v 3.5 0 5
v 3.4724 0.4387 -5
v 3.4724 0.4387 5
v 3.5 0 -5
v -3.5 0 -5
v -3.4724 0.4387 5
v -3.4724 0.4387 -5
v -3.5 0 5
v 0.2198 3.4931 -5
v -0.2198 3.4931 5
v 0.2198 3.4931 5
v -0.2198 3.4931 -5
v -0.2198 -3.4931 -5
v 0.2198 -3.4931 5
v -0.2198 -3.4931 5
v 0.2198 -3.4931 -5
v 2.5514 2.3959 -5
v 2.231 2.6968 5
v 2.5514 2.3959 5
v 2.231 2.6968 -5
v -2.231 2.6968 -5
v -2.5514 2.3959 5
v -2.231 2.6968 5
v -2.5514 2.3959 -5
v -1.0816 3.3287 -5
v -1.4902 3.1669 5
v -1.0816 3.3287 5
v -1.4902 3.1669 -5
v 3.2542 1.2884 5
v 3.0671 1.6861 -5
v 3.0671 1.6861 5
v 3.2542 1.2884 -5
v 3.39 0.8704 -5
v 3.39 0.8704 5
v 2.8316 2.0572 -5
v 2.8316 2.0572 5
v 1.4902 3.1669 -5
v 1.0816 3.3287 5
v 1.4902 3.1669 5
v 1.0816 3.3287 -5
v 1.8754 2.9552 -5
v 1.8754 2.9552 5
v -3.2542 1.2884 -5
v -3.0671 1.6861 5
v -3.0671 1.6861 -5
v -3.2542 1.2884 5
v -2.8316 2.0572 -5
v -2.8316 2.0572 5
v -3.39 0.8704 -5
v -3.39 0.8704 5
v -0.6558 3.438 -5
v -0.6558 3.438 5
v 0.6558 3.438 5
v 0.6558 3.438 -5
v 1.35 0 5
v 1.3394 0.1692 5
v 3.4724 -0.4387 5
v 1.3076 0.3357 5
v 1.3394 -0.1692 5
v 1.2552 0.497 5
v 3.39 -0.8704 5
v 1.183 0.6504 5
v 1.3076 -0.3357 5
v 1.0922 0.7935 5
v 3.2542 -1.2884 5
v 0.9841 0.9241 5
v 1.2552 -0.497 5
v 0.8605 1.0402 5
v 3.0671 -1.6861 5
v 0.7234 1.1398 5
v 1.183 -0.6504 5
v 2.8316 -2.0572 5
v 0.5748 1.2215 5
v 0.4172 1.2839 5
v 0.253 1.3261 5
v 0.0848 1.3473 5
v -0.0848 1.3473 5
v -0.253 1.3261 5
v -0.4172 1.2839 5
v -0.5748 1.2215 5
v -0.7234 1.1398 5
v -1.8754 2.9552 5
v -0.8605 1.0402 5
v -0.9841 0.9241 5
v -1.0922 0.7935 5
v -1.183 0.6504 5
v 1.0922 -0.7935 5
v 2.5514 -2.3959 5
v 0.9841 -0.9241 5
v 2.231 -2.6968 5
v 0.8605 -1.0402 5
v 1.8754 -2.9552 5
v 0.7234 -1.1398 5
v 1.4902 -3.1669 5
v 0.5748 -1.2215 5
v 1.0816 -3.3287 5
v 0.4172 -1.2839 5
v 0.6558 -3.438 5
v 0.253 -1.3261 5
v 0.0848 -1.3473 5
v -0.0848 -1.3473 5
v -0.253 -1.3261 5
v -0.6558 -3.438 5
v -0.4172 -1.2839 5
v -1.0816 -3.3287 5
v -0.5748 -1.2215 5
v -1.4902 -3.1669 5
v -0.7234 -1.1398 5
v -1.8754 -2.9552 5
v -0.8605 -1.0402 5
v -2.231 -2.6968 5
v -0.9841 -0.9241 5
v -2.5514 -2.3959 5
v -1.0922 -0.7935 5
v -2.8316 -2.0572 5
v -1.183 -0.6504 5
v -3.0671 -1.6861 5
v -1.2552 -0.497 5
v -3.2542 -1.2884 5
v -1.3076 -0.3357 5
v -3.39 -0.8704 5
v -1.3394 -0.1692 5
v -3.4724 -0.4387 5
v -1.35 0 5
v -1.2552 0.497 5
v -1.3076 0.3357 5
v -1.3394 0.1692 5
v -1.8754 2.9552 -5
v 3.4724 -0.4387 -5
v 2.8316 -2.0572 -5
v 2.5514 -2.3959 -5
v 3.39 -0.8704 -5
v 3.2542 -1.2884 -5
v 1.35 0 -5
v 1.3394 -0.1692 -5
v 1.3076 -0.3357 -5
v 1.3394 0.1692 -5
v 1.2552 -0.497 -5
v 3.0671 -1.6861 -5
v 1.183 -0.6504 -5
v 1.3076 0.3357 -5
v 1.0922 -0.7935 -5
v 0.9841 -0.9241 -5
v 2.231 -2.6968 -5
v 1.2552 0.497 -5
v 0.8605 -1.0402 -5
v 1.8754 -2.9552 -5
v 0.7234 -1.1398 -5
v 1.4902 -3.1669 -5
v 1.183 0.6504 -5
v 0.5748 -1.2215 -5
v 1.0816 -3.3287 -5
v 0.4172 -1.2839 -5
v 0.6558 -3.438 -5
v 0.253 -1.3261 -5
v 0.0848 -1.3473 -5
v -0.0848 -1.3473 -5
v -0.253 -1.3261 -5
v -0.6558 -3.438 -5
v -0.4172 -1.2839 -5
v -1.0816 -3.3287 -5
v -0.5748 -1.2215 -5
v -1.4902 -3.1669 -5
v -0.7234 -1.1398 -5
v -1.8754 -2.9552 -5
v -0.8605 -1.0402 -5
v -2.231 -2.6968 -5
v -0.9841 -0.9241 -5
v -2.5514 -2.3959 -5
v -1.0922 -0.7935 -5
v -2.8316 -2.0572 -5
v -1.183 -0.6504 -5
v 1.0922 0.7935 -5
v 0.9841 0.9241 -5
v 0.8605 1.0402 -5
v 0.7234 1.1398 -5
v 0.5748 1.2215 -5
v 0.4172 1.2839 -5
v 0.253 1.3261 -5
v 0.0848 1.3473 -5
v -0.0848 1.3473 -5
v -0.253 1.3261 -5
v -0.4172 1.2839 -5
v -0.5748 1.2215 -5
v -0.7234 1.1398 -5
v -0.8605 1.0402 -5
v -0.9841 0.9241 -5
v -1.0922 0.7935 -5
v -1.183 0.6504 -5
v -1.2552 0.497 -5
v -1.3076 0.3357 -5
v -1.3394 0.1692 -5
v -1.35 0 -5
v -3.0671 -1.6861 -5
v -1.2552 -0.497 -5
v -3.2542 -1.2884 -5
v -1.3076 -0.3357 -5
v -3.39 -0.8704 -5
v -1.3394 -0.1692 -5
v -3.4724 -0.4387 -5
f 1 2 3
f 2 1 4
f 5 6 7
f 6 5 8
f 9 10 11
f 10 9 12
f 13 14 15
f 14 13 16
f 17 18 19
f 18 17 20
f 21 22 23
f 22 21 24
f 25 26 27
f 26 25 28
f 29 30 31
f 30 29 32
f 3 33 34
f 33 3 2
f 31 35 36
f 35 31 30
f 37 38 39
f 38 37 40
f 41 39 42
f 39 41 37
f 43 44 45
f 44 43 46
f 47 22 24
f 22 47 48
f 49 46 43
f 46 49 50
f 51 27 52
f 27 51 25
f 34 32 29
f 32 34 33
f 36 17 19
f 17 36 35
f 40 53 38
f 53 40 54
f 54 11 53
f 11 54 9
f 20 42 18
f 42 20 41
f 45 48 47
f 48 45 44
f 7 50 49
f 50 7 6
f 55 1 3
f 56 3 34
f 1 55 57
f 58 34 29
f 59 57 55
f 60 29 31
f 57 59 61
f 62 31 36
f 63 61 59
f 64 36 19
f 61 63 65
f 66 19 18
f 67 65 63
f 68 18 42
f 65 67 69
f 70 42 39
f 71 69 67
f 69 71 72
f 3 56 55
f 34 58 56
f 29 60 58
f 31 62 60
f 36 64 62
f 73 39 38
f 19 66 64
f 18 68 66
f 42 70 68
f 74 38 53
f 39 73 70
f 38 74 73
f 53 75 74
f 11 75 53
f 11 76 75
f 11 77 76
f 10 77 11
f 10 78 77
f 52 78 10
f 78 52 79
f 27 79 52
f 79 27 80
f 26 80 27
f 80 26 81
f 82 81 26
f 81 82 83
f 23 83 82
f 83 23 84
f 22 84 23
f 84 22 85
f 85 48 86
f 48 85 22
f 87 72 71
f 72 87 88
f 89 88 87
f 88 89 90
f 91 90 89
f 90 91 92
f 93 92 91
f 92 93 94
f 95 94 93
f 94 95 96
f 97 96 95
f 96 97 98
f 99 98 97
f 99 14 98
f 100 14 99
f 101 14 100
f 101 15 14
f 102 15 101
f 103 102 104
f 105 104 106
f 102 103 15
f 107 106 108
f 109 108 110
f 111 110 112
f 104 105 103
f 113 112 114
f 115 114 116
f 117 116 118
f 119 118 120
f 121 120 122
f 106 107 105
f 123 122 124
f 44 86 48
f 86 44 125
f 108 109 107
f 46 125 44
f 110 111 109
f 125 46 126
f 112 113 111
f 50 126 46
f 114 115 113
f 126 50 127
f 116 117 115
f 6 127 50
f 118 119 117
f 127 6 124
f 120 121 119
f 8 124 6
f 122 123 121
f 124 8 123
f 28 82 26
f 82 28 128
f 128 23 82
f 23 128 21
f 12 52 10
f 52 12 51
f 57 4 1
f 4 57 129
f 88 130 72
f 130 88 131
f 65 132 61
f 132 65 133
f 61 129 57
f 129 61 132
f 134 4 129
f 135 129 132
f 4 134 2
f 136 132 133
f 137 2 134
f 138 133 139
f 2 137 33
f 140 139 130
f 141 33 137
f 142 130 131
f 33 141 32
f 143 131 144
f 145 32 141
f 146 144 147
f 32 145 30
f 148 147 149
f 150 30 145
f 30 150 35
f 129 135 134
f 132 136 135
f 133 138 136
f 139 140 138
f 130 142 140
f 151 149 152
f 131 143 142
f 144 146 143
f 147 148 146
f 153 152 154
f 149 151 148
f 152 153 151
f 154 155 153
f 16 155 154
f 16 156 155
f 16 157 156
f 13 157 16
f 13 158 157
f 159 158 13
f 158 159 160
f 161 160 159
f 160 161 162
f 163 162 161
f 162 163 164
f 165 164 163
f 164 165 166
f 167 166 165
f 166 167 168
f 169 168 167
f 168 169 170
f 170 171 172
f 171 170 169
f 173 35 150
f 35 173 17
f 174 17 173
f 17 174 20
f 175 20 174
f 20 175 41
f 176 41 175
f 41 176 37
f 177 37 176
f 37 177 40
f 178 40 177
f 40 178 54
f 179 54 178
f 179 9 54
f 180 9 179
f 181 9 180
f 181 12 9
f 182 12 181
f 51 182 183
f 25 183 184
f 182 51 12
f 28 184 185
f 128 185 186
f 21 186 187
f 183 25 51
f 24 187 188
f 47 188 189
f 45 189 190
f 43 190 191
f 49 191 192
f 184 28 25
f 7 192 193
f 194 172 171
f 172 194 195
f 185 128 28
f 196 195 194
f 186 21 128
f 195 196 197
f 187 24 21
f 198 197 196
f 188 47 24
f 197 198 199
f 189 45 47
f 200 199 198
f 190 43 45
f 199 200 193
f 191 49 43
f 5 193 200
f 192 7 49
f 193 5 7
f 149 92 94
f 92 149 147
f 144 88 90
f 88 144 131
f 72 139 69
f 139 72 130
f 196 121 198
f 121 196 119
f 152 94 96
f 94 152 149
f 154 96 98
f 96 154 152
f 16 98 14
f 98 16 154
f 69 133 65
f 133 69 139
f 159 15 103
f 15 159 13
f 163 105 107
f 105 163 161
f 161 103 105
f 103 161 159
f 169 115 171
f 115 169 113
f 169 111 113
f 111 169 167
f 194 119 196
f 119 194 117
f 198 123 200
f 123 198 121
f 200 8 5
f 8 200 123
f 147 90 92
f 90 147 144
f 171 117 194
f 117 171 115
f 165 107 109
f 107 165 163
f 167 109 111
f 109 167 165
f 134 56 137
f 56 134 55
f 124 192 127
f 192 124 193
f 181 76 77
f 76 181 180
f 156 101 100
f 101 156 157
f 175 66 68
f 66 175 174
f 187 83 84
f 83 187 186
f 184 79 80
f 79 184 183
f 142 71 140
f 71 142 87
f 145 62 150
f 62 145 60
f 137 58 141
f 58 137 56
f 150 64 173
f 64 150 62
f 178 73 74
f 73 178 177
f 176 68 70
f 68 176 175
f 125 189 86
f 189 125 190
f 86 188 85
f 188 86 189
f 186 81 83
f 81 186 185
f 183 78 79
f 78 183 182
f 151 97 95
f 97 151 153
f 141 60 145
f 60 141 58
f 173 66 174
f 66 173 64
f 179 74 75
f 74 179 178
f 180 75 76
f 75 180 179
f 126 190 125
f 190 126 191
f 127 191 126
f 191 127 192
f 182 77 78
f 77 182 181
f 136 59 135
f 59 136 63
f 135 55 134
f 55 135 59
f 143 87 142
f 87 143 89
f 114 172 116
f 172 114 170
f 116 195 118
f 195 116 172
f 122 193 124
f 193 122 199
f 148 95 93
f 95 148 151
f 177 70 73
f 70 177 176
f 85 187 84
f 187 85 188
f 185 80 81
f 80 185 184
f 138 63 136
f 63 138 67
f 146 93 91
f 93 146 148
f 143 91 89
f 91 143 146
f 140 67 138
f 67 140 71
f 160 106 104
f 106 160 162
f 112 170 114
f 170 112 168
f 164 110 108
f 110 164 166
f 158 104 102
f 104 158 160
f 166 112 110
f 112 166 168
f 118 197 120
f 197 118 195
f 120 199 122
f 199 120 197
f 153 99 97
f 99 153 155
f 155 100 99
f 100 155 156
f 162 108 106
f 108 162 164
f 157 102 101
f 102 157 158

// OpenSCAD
$fn = 50;


difference() {
	union() {
		translate(v = [0, 0, -5.0000000000]) {
			cylinder(h = 10, r = 3.5000000000);
		}
	}
	union() {
		translate(v = [0, 0, -100.0000000000]) {
			cylinder(h = 200, r = 1.3500000000);
		}
	}
}
